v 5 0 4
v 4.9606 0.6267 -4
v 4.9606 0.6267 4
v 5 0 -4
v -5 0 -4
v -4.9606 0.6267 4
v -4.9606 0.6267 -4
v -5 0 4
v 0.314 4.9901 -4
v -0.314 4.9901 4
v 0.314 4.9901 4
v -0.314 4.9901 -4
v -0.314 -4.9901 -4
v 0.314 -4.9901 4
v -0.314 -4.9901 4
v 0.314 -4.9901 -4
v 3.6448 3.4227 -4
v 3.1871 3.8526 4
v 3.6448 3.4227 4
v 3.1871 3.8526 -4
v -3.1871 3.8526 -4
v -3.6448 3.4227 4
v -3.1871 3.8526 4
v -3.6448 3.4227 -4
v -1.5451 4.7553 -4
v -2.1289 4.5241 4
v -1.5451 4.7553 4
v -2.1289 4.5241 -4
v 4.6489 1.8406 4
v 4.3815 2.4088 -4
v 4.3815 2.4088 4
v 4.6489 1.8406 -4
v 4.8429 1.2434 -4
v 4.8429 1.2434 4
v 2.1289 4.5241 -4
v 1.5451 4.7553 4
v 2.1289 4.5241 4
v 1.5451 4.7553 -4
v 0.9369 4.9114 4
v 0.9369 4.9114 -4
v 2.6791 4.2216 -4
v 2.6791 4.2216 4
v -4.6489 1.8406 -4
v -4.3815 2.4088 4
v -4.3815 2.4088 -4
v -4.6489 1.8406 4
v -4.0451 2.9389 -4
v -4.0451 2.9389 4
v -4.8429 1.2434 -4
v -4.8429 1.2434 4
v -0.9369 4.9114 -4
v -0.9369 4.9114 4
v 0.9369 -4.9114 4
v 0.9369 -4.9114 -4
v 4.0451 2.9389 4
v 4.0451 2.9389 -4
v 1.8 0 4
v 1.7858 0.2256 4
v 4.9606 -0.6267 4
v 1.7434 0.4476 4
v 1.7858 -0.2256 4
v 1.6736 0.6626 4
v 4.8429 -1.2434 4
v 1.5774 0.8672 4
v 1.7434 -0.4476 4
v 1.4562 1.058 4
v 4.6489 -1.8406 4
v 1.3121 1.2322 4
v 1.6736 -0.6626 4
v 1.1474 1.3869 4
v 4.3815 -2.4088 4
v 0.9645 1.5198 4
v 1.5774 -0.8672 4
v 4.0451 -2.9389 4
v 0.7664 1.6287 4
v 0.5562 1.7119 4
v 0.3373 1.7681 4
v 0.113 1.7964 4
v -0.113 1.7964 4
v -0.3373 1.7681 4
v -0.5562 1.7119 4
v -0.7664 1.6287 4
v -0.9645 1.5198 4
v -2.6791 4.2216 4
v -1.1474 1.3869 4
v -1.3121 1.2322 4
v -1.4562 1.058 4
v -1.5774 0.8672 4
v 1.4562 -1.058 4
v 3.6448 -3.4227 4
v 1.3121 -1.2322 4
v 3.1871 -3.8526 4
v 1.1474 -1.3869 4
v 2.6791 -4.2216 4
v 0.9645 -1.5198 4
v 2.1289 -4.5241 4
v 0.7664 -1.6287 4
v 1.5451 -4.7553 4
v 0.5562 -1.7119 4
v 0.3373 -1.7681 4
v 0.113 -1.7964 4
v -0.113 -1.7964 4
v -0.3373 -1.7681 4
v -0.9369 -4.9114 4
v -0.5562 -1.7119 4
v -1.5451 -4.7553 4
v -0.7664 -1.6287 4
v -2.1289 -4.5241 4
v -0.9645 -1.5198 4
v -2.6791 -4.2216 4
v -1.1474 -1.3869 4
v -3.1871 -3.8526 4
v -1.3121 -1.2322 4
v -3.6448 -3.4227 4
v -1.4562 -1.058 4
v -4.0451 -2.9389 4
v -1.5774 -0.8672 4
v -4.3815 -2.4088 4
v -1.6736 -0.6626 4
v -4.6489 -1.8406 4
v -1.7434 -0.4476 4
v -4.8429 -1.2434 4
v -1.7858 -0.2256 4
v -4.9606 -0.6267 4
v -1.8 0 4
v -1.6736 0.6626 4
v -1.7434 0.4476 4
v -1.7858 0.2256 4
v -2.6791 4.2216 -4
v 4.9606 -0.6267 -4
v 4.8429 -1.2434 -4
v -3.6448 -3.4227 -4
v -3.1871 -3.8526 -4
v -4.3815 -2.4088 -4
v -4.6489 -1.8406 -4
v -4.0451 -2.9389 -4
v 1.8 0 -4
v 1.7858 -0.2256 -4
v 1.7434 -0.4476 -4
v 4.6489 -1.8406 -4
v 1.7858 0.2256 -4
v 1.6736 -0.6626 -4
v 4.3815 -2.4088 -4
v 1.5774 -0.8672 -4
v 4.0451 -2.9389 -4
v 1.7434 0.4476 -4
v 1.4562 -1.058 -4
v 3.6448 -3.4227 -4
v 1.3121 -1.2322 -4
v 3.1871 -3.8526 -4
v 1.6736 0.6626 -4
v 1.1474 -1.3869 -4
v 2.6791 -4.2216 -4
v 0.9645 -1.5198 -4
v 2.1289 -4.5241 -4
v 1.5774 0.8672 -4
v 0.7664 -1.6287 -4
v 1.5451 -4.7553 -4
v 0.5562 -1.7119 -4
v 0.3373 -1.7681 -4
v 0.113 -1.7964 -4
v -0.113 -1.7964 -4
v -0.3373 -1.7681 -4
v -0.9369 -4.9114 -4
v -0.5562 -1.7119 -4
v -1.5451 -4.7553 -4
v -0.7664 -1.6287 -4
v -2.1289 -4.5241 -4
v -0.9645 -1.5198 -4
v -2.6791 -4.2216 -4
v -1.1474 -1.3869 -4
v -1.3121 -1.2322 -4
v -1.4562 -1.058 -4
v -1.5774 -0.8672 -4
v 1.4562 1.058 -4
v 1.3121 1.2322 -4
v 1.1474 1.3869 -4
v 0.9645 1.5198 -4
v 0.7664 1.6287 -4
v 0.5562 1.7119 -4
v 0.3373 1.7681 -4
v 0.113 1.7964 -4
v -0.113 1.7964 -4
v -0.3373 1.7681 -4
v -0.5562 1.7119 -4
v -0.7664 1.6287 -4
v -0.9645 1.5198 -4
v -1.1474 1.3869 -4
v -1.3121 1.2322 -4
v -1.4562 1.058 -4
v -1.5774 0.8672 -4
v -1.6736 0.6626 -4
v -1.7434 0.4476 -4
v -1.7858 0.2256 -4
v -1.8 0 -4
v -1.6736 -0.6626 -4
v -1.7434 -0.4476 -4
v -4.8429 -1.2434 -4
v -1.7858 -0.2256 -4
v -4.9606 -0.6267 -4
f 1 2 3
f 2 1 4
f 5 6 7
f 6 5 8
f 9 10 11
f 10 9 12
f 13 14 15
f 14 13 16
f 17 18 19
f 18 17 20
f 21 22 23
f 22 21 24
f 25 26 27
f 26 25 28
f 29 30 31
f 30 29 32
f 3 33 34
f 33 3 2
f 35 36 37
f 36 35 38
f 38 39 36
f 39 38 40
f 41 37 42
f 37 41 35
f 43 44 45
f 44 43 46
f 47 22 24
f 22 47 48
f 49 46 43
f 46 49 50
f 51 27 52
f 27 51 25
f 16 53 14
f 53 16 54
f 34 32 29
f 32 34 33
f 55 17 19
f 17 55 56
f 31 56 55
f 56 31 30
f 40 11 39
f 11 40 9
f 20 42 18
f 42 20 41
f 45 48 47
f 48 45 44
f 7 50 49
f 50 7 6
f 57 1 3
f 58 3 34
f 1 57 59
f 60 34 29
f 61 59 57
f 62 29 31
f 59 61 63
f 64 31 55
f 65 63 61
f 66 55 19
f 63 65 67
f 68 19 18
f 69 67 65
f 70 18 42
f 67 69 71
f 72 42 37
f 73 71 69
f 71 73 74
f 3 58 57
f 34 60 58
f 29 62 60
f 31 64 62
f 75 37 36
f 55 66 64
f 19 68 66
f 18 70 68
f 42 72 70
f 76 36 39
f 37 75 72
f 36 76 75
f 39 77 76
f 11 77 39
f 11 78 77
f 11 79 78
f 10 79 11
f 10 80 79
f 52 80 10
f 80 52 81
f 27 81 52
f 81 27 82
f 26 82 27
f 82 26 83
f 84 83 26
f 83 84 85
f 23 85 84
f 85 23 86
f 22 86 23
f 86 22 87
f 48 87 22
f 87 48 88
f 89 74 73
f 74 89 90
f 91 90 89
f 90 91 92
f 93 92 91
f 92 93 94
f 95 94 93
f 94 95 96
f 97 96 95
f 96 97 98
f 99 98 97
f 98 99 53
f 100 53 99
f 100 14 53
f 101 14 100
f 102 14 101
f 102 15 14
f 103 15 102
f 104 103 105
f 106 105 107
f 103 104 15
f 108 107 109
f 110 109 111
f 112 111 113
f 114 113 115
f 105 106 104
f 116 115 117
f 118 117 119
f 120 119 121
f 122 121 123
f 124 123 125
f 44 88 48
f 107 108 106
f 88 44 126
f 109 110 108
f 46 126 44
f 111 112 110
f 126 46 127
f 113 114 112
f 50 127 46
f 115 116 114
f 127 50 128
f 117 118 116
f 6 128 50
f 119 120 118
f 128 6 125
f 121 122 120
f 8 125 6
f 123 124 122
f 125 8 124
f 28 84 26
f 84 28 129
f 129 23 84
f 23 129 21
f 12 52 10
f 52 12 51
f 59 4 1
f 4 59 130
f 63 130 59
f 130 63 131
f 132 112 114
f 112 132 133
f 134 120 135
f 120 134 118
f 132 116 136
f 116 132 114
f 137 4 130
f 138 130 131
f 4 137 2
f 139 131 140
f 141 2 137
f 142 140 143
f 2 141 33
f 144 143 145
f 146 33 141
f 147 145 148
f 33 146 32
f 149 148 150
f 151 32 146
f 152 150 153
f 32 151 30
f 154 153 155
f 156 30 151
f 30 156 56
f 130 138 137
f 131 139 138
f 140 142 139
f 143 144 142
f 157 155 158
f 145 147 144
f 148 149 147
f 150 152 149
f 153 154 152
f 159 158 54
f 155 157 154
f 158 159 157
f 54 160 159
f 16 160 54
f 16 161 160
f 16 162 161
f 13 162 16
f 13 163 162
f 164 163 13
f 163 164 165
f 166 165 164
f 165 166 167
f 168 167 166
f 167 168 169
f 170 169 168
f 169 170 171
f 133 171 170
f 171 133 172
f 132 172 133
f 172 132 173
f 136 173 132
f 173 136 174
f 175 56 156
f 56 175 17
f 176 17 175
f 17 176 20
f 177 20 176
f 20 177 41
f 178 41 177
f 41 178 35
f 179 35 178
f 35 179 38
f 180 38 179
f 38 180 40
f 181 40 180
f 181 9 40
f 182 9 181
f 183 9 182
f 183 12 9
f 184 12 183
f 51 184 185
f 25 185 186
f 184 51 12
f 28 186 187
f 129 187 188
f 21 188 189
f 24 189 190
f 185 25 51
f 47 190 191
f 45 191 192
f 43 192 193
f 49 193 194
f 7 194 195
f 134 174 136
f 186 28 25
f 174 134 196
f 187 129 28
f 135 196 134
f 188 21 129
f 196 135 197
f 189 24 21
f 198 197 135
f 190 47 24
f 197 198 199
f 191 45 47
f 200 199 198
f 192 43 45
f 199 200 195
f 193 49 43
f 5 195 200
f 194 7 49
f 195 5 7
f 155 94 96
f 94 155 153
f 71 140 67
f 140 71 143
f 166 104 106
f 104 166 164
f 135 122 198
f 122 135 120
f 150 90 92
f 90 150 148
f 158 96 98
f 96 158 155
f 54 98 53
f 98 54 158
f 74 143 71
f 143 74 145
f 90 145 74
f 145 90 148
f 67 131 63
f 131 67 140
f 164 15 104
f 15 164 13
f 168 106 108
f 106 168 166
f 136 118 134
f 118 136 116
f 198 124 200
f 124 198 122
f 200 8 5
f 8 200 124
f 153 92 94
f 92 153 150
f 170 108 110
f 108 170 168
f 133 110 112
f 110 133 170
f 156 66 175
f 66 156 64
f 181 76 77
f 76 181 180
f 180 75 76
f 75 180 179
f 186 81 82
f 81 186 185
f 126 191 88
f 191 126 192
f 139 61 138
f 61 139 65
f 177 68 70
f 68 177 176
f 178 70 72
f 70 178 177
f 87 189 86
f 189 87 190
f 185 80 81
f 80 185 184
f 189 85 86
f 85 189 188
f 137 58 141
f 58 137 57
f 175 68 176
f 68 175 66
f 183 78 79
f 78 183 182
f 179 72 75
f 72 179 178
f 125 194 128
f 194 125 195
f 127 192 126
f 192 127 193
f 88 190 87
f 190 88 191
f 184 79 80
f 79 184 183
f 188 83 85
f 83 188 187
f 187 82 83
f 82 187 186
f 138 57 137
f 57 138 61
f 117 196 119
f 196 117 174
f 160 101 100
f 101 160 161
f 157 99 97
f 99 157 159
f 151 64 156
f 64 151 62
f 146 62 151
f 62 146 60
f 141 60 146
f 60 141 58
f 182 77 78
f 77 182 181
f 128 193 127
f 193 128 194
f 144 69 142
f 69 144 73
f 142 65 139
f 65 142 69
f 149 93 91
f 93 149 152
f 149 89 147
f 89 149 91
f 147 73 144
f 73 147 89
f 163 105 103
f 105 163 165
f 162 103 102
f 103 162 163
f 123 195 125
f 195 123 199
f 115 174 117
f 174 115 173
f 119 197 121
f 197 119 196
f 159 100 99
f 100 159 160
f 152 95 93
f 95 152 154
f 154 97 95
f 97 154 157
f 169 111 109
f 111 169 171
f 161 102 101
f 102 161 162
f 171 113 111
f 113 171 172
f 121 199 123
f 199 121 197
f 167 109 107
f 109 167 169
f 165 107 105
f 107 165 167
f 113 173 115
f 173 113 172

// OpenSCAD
$fn = 50;


difference() {
	union() {
		translate(v = [0, 0, -4.0000000000]) {
			cylinder(h = 8, r = 5.0000000000);
		}
	}
	union() {
		translate(v = [0, 0, -100.0000000000]) {
			cylinder(h = 200, r = 1.8000000000);
		}
	}
}
